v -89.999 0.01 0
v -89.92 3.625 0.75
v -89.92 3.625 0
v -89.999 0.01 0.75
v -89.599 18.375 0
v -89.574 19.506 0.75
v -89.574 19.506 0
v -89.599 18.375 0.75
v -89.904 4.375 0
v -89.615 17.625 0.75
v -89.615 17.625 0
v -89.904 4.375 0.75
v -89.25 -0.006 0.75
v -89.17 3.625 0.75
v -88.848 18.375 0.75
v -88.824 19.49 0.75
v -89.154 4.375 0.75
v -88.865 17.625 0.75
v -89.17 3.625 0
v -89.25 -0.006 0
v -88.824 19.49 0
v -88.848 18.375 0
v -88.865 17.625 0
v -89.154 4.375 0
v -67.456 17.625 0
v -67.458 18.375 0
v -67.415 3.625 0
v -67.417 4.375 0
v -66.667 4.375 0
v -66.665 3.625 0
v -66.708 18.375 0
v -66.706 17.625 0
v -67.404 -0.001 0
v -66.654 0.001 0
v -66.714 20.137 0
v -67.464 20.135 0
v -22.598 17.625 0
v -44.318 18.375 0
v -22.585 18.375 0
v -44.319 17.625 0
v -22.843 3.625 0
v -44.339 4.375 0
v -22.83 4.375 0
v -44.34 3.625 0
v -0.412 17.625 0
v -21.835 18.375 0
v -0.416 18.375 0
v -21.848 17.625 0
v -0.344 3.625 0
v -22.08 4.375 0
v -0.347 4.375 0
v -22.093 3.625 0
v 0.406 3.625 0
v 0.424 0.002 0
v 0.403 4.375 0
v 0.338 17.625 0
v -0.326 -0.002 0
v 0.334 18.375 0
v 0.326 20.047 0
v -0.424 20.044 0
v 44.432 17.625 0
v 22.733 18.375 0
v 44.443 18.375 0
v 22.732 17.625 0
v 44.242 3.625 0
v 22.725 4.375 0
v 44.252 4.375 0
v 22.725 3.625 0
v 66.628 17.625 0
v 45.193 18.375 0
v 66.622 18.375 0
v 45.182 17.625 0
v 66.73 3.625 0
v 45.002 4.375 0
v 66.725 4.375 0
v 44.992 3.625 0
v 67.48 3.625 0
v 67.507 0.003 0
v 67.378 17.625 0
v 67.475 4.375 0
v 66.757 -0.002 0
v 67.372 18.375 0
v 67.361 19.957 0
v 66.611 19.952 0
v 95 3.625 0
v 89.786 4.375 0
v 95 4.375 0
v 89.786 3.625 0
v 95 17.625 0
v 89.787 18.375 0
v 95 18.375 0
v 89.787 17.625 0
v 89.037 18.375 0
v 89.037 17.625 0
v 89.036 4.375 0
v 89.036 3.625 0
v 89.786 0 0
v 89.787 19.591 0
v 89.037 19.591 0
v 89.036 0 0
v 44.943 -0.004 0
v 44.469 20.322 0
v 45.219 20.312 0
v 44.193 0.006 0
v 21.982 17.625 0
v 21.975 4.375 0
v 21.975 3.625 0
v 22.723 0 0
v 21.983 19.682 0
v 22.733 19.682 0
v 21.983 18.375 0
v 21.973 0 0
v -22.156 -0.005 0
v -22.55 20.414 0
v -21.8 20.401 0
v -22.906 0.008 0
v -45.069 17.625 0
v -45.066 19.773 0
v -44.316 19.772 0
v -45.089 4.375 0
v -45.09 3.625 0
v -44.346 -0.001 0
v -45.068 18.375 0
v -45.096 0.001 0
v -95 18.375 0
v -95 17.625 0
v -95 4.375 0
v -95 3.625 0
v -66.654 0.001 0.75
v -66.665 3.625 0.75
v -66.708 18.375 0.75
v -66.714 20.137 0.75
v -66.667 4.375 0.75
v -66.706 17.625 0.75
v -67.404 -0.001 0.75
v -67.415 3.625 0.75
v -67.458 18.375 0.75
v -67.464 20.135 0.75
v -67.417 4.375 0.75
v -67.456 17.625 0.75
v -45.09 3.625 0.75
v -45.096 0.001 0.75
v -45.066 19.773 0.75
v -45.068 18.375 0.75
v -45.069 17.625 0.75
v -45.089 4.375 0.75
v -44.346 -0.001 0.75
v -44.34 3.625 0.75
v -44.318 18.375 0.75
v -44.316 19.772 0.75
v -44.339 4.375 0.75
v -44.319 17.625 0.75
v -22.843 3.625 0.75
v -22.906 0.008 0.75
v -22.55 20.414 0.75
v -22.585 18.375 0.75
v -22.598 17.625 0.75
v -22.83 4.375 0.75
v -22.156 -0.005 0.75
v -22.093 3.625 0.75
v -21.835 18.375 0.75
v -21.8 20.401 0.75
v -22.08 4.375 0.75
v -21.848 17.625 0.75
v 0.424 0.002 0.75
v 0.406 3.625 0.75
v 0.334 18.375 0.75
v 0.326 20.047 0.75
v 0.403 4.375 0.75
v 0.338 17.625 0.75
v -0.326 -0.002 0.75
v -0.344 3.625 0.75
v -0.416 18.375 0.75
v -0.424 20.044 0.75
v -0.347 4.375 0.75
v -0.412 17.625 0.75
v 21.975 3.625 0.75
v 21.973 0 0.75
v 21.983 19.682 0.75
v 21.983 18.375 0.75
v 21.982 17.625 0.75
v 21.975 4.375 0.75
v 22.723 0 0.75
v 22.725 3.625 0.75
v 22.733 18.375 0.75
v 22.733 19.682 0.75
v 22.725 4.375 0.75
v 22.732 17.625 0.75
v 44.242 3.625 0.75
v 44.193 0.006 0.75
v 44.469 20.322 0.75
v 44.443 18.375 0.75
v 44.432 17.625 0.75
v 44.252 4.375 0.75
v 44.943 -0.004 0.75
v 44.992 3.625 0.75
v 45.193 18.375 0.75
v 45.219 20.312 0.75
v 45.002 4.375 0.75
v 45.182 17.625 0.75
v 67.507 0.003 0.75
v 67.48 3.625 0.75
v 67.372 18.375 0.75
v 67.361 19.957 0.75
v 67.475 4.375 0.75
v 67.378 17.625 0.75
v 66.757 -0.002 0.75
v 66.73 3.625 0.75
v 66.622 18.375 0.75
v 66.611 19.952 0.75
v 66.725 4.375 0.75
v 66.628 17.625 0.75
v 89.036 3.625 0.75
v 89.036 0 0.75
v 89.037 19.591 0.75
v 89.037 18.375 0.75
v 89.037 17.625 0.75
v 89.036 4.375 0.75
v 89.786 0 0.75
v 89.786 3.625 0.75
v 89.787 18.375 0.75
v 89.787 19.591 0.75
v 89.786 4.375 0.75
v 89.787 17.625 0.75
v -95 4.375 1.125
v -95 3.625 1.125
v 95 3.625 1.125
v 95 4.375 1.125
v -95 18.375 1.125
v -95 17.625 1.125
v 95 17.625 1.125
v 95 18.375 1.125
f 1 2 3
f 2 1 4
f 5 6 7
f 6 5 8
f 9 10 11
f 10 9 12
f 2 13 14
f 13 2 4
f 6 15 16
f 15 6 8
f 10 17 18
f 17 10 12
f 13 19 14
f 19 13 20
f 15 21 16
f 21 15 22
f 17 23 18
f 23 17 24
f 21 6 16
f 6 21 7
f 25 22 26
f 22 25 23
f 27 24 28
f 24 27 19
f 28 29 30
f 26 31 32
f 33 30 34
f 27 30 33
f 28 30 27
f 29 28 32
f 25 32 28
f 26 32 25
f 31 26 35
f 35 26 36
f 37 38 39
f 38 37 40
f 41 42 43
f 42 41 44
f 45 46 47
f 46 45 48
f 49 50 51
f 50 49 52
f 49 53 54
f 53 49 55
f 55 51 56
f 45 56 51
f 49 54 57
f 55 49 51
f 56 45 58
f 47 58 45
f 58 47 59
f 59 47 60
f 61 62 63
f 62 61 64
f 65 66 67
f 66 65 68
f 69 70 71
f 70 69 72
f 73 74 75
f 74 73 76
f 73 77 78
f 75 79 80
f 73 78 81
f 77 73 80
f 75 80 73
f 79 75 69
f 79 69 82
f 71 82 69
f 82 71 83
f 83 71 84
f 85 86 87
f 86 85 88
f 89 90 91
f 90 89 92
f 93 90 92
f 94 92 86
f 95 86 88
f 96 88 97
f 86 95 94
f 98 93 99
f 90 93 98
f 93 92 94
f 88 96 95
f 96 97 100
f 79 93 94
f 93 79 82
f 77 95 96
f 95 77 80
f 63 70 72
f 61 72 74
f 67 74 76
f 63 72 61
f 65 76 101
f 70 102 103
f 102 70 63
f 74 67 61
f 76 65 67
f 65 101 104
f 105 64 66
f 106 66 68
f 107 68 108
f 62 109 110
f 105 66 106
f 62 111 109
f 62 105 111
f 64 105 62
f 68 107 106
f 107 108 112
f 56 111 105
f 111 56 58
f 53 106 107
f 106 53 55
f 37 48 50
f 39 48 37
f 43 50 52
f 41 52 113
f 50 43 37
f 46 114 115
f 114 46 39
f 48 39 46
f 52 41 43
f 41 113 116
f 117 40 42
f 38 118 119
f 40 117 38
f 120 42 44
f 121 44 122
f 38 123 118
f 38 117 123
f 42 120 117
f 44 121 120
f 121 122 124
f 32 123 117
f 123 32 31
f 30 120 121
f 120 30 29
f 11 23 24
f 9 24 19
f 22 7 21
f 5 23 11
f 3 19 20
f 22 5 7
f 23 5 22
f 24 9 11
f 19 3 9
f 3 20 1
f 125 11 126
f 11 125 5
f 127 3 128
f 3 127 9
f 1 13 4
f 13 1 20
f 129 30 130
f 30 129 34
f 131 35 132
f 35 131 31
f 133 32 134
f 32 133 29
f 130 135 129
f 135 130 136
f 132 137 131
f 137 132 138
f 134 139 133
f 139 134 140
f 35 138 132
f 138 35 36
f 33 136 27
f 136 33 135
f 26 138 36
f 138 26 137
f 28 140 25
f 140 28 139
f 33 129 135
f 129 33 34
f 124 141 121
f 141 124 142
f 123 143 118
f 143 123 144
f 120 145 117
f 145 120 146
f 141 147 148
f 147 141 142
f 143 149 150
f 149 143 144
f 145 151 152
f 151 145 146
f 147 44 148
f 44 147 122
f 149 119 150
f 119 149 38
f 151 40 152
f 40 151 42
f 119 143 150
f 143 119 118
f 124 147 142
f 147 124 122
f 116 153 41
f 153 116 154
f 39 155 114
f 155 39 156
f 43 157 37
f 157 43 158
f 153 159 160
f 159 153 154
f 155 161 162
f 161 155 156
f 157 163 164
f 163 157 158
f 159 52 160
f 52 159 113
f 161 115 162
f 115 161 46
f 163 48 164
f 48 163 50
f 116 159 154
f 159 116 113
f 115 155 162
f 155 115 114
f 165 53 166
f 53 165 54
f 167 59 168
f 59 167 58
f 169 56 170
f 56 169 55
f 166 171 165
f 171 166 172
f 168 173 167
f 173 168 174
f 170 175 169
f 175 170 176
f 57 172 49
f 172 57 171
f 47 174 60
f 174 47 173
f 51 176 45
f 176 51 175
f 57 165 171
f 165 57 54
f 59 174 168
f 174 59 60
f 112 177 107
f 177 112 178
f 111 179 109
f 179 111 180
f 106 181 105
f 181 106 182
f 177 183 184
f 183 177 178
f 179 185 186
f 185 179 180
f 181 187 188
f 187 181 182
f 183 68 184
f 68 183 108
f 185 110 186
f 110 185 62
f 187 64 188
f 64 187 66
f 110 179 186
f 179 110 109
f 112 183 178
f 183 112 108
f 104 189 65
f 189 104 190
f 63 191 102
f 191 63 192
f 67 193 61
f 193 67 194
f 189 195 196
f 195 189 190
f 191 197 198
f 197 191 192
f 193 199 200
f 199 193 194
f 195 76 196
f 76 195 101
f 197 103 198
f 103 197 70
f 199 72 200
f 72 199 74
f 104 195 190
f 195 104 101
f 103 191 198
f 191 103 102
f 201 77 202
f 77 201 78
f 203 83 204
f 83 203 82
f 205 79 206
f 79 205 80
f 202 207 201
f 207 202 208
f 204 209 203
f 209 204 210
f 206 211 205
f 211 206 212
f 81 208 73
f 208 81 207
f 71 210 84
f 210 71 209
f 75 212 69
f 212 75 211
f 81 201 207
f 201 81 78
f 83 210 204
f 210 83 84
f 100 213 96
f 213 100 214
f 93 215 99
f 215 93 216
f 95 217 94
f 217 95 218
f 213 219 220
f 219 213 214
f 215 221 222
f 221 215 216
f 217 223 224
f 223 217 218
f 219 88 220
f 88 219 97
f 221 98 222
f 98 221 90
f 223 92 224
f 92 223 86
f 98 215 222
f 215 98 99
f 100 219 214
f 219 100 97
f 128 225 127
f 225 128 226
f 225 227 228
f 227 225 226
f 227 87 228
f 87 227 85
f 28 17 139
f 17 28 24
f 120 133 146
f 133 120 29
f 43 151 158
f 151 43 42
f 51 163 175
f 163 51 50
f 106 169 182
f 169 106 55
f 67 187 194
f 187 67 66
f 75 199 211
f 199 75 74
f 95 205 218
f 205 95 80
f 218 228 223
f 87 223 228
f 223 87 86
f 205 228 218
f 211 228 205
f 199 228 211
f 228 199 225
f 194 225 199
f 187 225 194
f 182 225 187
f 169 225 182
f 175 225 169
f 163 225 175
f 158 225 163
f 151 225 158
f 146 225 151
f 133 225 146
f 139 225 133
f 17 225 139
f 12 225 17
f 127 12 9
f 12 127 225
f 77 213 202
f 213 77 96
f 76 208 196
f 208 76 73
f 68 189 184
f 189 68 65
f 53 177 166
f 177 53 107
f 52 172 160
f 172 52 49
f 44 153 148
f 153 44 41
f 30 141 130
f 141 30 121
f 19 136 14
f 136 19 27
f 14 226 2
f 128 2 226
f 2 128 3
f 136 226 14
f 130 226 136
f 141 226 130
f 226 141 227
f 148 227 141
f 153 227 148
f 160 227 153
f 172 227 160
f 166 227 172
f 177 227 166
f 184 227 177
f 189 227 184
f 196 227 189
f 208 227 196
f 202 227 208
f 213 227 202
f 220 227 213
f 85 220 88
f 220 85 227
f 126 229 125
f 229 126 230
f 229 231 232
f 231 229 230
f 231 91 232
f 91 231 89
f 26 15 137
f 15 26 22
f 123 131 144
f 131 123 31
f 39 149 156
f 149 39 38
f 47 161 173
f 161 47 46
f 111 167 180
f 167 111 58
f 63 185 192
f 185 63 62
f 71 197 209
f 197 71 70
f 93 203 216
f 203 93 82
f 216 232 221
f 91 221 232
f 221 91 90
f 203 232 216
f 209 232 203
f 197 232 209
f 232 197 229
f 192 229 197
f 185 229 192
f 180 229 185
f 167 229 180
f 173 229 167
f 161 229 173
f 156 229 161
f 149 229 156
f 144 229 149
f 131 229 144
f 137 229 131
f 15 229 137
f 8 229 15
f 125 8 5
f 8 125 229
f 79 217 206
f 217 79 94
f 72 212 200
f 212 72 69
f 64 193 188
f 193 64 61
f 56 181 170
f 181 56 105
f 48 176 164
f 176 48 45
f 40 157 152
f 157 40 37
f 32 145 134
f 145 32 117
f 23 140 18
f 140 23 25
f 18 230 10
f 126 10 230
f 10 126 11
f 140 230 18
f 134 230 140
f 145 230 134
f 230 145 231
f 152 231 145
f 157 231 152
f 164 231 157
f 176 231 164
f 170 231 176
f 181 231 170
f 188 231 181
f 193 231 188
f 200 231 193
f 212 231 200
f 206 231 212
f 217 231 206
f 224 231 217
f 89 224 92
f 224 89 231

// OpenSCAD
width          = 190;
height         = 20;
height_variant = 1;
rot_variant    = 5;

distance       = 25;

stick          = 0.75;
hor            = [0.2, 0.9];

Rack();

module Rack() {
    number = ceil(width / distance);
    for (i=[0:number]) {
        rnd = i * 7 % 11 / 11;
        rnd2_tmp = (i * 13 % 19 / 19) - .5;
        rnd2 = pow(rnd2_tmp, 2) * ((rnd2_tmp > 0) ? 1 : -1);
        x = ((i-.5) - ((number -1) / 2) ) * width / (number + .5);
        h = height + (rnd - .5) * height_variant;
        translate([x, h / 2, stick / 2]) rotate(rot_variant * rnd2)  cube ([stick, h, stick], true);
    }

    for(yr=hor) {
        y = height * yr;
        translate([0, y, stick * 0.75]) cube([width, stick, stick*1.5], true);

    }
}
